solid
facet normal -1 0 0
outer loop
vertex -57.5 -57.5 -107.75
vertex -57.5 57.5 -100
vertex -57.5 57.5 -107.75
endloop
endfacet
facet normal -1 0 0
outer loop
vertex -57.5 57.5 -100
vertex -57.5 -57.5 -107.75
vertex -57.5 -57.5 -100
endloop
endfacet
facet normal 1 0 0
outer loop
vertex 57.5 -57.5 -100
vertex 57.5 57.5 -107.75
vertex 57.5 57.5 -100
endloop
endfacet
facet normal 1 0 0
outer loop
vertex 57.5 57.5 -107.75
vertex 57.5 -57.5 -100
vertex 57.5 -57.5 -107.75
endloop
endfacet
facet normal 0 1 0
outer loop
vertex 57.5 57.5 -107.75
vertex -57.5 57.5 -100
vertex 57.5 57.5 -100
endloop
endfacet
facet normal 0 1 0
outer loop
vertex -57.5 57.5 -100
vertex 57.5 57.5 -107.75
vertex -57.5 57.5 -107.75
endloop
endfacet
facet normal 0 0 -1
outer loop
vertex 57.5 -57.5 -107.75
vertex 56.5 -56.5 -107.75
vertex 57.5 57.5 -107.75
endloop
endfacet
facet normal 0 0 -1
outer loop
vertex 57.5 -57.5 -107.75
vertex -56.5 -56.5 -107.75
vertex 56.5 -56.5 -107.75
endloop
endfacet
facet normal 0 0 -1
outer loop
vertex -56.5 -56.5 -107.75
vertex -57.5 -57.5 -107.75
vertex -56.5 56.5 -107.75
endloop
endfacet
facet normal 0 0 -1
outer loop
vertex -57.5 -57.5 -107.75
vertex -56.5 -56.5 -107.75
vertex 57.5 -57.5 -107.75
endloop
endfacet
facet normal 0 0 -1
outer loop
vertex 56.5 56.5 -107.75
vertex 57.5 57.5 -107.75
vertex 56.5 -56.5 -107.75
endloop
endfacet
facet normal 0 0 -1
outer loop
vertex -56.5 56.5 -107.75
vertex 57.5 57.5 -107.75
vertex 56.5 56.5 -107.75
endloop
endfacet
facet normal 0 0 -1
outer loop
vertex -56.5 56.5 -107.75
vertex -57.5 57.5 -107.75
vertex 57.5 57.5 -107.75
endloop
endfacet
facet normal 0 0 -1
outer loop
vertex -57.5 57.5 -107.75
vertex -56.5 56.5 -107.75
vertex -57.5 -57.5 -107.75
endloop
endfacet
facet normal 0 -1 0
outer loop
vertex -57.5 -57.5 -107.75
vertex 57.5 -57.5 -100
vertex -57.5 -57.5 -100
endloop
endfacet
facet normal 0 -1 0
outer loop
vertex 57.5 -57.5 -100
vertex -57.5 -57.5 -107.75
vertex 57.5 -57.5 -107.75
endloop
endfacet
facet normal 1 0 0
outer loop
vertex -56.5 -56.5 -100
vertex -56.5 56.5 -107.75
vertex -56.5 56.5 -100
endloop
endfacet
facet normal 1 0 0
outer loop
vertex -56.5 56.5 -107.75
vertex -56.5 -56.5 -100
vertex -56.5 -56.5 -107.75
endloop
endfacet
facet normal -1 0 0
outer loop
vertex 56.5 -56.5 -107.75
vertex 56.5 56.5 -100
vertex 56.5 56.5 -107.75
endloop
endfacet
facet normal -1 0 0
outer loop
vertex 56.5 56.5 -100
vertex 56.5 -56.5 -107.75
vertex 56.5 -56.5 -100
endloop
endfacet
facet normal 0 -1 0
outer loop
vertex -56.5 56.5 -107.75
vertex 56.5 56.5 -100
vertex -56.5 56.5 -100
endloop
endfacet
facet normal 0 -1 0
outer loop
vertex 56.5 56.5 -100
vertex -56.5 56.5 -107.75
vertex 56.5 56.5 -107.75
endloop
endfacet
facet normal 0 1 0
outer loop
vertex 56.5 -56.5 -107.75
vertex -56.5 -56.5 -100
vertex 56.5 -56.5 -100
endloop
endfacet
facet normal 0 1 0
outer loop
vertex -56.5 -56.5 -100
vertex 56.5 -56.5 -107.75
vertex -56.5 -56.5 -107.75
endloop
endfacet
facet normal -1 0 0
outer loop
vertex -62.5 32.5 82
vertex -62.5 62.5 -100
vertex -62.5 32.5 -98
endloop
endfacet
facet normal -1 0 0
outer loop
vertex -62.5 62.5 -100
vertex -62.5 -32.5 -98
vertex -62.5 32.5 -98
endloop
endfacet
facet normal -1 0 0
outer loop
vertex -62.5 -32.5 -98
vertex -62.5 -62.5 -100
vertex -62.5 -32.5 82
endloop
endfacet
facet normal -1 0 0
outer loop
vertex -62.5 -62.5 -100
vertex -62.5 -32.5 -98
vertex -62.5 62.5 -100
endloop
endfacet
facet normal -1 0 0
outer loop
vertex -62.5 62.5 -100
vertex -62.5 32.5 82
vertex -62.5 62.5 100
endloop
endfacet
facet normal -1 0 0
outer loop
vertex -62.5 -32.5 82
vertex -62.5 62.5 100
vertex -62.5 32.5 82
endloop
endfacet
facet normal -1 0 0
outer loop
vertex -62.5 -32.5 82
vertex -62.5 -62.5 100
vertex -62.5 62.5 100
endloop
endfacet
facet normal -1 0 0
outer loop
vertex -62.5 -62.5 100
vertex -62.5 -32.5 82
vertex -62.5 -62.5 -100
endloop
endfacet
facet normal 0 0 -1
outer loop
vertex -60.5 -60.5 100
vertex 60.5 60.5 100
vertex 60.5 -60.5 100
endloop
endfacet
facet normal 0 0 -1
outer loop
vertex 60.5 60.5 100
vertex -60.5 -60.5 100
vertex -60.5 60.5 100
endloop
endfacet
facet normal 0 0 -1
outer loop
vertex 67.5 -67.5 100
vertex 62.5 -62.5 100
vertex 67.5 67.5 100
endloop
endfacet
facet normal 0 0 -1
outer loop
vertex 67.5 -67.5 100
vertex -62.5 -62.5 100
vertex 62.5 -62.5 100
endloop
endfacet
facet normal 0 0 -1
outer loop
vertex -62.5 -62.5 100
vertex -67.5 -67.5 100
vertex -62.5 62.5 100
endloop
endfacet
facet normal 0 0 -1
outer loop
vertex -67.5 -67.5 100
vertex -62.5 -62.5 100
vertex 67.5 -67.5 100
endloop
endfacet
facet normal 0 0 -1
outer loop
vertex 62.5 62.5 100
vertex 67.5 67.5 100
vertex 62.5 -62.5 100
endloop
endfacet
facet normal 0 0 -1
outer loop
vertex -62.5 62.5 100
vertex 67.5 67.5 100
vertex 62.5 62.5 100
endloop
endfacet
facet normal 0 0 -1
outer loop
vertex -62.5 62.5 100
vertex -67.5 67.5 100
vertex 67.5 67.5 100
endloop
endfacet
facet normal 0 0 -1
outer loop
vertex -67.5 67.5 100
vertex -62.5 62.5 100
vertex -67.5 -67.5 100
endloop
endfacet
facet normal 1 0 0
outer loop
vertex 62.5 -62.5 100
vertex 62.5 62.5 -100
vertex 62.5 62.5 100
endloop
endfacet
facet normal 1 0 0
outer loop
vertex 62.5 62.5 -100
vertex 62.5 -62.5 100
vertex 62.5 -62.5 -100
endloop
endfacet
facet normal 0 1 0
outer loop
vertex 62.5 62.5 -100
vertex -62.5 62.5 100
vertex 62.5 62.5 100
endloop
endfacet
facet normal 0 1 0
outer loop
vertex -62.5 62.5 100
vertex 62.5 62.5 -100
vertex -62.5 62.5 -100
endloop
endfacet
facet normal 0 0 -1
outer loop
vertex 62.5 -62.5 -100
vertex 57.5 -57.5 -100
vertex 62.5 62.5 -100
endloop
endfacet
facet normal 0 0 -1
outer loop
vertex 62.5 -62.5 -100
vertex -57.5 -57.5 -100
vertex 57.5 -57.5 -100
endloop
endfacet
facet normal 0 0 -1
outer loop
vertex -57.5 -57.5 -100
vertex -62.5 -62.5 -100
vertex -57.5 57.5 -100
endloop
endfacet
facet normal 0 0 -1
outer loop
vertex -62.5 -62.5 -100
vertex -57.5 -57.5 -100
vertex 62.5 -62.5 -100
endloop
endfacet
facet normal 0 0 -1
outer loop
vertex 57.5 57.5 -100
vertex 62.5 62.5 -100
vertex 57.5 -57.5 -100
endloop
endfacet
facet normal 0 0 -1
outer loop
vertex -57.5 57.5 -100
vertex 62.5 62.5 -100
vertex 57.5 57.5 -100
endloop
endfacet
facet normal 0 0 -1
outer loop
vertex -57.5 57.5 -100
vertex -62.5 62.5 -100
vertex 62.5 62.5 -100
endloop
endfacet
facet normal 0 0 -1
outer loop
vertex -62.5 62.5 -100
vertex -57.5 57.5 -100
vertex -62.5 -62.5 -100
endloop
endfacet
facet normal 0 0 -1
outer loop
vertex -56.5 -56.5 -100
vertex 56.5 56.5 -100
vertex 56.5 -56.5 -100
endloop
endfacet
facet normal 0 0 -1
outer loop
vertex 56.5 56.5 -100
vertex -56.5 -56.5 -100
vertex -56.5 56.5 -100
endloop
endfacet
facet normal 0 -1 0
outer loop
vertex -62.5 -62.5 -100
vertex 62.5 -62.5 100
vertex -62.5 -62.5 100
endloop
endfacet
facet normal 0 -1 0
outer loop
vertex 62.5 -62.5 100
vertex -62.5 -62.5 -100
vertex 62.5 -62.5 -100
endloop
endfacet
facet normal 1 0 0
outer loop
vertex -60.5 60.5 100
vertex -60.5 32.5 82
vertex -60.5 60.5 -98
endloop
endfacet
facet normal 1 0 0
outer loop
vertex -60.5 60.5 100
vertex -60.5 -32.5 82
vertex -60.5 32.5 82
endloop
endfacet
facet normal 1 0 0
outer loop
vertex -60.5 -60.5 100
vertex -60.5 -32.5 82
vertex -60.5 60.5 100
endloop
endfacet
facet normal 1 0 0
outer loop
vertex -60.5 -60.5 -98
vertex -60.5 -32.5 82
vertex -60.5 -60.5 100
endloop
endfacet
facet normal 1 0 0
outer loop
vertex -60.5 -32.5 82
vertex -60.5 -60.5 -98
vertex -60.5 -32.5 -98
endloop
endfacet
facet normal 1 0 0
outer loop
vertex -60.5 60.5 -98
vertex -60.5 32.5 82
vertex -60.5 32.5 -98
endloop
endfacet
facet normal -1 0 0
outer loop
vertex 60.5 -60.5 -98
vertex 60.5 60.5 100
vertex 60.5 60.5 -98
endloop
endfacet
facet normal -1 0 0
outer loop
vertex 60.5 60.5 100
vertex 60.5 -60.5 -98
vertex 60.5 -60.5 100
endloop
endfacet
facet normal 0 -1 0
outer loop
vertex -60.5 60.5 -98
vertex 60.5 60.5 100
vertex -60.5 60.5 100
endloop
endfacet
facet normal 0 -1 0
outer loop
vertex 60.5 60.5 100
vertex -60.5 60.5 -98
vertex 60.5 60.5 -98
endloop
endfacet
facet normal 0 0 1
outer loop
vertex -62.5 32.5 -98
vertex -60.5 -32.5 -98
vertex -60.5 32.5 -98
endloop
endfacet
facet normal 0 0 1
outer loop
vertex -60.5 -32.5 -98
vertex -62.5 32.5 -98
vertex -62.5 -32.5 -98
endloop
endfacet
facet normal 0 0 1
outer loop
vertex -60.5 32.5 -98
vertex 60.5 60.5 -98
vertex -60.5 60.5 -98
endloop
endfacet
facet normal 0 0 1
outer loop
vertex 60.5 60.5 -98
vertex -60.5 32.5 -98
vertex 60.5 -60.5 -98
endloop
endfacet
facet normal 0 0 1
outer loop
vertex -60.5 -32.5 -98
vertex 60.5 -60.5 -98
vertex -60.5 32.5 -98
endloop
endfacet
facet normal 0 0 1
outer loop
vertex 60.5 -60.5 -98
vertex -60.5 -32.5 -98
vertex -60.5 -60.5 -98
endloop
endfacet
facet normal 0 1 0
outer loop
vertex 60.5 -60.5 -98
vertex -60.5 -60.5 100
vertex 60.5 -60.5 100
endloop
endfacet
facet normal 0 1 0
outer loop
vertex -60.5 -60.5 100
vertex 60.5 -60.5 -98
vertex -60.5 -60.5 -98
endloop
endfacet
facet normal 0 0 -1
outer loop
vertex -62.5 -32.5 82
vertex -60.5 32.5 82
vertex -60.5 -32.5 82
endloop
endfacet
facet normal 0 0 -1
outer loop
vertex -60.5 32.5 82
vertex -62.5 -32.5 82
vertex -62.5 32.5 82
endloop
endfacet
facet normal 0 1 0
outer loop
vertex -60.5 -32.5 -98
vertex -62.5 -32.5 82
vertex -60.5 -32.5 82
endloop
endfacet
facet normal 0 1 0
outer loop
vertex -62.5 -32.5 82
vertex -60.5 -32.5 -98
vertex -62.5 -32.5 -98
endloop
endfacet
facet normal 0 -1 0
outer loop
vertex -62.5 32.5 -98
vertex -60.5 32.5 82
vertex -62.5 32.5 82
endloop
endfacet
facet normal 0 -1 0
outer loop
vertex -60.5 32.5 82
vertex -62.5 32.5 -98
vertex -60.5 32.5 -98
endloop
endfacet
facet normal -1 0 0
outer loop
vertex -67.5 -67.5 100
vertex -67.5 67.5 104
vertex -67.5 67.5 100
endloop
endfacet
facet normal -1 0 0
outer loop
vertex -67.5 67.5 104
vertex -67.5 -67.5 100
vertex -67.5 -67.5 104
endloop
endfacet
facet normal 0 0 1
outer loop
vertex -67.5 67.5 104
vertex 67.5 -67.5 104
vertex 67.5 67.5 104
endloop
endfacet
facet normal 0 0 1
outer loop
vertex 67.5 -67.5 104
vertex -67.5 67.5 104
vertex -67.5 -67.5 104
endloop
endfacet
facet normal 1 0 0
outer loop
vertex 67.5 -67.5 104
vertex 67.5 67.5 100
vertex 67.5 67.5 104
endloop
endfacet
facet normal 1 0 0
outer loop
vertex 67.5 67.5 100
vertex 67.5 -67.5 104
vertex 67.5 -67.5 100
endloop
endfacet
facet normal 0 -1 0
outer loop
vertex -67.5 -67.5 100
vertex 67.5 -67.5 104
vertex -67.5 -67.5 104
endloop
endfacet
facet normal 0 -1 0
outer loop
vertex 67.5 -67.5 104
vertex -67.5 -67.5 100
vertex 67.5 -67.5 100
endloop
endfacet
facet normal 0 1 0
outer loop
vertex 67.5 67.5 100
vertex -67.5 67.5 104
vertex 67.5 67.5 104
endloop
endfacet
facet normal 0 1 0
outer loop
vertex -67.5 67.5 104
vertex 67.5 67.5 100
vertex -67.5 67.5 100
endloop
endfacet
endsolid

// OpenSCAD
cabin_width=125;
cabin_height=200;
cabin_wall_thickness=2;
cabin_floor_thickness=2;
roof_thickness=4;
roof_overhang=5;
door_width=65;
door_height=180;
pedestal_width=115;
pedestal_height=8;
pedestal_thickness=2;

module roof(cw=cabin_width,ro=roof_overhang,rt=roof_thickness){
    cube(size=[cw+(2*ro),cw+(2*ro),rt], center=true);
}

module cabin(cw=cabin_width,ch=cabin_height,ct=cabin_wall_thickness,cf=cabin_floor_thickness,dw=door_width,dh=door_height) {
    difference(){
        difference() {
            // cabin outer dimensions
            cube(size=[cw,cw,ch],center=true);
            // cabin inner dimensions
            translate([0,0,cf])
                    cube(size=[cw-(2*ct),cw-(2*ct),ch],center=true);   
        }
        translate([(ct-cabin_width)/2,0,cf-((ch-dh)/2)])
            // doorway punch
            cube(size=[2*ct,dw,dh],center=true);
    }
}

module pedestal(pw=pedestal_width,ph=pedestal_height,pt=pedestal_thickness) {
           difference() {
            cube([pw,pw,0.5+ph],center=true);
            translate([0,0,-1])
                cube([pw-pt,pw-pt,ph+2],center=true);
        }
}
    //translate([0,0,100])
union(){
    // roof:
    translate([0,0,(cabin_height+roof_thickness)/2])
        roof();
    // cabin:
    cabin();
    // pedestal:
    translate([0,0,0.5-(cabin_height+pedestal_height)/2])
        pedestal();
}
        
    
